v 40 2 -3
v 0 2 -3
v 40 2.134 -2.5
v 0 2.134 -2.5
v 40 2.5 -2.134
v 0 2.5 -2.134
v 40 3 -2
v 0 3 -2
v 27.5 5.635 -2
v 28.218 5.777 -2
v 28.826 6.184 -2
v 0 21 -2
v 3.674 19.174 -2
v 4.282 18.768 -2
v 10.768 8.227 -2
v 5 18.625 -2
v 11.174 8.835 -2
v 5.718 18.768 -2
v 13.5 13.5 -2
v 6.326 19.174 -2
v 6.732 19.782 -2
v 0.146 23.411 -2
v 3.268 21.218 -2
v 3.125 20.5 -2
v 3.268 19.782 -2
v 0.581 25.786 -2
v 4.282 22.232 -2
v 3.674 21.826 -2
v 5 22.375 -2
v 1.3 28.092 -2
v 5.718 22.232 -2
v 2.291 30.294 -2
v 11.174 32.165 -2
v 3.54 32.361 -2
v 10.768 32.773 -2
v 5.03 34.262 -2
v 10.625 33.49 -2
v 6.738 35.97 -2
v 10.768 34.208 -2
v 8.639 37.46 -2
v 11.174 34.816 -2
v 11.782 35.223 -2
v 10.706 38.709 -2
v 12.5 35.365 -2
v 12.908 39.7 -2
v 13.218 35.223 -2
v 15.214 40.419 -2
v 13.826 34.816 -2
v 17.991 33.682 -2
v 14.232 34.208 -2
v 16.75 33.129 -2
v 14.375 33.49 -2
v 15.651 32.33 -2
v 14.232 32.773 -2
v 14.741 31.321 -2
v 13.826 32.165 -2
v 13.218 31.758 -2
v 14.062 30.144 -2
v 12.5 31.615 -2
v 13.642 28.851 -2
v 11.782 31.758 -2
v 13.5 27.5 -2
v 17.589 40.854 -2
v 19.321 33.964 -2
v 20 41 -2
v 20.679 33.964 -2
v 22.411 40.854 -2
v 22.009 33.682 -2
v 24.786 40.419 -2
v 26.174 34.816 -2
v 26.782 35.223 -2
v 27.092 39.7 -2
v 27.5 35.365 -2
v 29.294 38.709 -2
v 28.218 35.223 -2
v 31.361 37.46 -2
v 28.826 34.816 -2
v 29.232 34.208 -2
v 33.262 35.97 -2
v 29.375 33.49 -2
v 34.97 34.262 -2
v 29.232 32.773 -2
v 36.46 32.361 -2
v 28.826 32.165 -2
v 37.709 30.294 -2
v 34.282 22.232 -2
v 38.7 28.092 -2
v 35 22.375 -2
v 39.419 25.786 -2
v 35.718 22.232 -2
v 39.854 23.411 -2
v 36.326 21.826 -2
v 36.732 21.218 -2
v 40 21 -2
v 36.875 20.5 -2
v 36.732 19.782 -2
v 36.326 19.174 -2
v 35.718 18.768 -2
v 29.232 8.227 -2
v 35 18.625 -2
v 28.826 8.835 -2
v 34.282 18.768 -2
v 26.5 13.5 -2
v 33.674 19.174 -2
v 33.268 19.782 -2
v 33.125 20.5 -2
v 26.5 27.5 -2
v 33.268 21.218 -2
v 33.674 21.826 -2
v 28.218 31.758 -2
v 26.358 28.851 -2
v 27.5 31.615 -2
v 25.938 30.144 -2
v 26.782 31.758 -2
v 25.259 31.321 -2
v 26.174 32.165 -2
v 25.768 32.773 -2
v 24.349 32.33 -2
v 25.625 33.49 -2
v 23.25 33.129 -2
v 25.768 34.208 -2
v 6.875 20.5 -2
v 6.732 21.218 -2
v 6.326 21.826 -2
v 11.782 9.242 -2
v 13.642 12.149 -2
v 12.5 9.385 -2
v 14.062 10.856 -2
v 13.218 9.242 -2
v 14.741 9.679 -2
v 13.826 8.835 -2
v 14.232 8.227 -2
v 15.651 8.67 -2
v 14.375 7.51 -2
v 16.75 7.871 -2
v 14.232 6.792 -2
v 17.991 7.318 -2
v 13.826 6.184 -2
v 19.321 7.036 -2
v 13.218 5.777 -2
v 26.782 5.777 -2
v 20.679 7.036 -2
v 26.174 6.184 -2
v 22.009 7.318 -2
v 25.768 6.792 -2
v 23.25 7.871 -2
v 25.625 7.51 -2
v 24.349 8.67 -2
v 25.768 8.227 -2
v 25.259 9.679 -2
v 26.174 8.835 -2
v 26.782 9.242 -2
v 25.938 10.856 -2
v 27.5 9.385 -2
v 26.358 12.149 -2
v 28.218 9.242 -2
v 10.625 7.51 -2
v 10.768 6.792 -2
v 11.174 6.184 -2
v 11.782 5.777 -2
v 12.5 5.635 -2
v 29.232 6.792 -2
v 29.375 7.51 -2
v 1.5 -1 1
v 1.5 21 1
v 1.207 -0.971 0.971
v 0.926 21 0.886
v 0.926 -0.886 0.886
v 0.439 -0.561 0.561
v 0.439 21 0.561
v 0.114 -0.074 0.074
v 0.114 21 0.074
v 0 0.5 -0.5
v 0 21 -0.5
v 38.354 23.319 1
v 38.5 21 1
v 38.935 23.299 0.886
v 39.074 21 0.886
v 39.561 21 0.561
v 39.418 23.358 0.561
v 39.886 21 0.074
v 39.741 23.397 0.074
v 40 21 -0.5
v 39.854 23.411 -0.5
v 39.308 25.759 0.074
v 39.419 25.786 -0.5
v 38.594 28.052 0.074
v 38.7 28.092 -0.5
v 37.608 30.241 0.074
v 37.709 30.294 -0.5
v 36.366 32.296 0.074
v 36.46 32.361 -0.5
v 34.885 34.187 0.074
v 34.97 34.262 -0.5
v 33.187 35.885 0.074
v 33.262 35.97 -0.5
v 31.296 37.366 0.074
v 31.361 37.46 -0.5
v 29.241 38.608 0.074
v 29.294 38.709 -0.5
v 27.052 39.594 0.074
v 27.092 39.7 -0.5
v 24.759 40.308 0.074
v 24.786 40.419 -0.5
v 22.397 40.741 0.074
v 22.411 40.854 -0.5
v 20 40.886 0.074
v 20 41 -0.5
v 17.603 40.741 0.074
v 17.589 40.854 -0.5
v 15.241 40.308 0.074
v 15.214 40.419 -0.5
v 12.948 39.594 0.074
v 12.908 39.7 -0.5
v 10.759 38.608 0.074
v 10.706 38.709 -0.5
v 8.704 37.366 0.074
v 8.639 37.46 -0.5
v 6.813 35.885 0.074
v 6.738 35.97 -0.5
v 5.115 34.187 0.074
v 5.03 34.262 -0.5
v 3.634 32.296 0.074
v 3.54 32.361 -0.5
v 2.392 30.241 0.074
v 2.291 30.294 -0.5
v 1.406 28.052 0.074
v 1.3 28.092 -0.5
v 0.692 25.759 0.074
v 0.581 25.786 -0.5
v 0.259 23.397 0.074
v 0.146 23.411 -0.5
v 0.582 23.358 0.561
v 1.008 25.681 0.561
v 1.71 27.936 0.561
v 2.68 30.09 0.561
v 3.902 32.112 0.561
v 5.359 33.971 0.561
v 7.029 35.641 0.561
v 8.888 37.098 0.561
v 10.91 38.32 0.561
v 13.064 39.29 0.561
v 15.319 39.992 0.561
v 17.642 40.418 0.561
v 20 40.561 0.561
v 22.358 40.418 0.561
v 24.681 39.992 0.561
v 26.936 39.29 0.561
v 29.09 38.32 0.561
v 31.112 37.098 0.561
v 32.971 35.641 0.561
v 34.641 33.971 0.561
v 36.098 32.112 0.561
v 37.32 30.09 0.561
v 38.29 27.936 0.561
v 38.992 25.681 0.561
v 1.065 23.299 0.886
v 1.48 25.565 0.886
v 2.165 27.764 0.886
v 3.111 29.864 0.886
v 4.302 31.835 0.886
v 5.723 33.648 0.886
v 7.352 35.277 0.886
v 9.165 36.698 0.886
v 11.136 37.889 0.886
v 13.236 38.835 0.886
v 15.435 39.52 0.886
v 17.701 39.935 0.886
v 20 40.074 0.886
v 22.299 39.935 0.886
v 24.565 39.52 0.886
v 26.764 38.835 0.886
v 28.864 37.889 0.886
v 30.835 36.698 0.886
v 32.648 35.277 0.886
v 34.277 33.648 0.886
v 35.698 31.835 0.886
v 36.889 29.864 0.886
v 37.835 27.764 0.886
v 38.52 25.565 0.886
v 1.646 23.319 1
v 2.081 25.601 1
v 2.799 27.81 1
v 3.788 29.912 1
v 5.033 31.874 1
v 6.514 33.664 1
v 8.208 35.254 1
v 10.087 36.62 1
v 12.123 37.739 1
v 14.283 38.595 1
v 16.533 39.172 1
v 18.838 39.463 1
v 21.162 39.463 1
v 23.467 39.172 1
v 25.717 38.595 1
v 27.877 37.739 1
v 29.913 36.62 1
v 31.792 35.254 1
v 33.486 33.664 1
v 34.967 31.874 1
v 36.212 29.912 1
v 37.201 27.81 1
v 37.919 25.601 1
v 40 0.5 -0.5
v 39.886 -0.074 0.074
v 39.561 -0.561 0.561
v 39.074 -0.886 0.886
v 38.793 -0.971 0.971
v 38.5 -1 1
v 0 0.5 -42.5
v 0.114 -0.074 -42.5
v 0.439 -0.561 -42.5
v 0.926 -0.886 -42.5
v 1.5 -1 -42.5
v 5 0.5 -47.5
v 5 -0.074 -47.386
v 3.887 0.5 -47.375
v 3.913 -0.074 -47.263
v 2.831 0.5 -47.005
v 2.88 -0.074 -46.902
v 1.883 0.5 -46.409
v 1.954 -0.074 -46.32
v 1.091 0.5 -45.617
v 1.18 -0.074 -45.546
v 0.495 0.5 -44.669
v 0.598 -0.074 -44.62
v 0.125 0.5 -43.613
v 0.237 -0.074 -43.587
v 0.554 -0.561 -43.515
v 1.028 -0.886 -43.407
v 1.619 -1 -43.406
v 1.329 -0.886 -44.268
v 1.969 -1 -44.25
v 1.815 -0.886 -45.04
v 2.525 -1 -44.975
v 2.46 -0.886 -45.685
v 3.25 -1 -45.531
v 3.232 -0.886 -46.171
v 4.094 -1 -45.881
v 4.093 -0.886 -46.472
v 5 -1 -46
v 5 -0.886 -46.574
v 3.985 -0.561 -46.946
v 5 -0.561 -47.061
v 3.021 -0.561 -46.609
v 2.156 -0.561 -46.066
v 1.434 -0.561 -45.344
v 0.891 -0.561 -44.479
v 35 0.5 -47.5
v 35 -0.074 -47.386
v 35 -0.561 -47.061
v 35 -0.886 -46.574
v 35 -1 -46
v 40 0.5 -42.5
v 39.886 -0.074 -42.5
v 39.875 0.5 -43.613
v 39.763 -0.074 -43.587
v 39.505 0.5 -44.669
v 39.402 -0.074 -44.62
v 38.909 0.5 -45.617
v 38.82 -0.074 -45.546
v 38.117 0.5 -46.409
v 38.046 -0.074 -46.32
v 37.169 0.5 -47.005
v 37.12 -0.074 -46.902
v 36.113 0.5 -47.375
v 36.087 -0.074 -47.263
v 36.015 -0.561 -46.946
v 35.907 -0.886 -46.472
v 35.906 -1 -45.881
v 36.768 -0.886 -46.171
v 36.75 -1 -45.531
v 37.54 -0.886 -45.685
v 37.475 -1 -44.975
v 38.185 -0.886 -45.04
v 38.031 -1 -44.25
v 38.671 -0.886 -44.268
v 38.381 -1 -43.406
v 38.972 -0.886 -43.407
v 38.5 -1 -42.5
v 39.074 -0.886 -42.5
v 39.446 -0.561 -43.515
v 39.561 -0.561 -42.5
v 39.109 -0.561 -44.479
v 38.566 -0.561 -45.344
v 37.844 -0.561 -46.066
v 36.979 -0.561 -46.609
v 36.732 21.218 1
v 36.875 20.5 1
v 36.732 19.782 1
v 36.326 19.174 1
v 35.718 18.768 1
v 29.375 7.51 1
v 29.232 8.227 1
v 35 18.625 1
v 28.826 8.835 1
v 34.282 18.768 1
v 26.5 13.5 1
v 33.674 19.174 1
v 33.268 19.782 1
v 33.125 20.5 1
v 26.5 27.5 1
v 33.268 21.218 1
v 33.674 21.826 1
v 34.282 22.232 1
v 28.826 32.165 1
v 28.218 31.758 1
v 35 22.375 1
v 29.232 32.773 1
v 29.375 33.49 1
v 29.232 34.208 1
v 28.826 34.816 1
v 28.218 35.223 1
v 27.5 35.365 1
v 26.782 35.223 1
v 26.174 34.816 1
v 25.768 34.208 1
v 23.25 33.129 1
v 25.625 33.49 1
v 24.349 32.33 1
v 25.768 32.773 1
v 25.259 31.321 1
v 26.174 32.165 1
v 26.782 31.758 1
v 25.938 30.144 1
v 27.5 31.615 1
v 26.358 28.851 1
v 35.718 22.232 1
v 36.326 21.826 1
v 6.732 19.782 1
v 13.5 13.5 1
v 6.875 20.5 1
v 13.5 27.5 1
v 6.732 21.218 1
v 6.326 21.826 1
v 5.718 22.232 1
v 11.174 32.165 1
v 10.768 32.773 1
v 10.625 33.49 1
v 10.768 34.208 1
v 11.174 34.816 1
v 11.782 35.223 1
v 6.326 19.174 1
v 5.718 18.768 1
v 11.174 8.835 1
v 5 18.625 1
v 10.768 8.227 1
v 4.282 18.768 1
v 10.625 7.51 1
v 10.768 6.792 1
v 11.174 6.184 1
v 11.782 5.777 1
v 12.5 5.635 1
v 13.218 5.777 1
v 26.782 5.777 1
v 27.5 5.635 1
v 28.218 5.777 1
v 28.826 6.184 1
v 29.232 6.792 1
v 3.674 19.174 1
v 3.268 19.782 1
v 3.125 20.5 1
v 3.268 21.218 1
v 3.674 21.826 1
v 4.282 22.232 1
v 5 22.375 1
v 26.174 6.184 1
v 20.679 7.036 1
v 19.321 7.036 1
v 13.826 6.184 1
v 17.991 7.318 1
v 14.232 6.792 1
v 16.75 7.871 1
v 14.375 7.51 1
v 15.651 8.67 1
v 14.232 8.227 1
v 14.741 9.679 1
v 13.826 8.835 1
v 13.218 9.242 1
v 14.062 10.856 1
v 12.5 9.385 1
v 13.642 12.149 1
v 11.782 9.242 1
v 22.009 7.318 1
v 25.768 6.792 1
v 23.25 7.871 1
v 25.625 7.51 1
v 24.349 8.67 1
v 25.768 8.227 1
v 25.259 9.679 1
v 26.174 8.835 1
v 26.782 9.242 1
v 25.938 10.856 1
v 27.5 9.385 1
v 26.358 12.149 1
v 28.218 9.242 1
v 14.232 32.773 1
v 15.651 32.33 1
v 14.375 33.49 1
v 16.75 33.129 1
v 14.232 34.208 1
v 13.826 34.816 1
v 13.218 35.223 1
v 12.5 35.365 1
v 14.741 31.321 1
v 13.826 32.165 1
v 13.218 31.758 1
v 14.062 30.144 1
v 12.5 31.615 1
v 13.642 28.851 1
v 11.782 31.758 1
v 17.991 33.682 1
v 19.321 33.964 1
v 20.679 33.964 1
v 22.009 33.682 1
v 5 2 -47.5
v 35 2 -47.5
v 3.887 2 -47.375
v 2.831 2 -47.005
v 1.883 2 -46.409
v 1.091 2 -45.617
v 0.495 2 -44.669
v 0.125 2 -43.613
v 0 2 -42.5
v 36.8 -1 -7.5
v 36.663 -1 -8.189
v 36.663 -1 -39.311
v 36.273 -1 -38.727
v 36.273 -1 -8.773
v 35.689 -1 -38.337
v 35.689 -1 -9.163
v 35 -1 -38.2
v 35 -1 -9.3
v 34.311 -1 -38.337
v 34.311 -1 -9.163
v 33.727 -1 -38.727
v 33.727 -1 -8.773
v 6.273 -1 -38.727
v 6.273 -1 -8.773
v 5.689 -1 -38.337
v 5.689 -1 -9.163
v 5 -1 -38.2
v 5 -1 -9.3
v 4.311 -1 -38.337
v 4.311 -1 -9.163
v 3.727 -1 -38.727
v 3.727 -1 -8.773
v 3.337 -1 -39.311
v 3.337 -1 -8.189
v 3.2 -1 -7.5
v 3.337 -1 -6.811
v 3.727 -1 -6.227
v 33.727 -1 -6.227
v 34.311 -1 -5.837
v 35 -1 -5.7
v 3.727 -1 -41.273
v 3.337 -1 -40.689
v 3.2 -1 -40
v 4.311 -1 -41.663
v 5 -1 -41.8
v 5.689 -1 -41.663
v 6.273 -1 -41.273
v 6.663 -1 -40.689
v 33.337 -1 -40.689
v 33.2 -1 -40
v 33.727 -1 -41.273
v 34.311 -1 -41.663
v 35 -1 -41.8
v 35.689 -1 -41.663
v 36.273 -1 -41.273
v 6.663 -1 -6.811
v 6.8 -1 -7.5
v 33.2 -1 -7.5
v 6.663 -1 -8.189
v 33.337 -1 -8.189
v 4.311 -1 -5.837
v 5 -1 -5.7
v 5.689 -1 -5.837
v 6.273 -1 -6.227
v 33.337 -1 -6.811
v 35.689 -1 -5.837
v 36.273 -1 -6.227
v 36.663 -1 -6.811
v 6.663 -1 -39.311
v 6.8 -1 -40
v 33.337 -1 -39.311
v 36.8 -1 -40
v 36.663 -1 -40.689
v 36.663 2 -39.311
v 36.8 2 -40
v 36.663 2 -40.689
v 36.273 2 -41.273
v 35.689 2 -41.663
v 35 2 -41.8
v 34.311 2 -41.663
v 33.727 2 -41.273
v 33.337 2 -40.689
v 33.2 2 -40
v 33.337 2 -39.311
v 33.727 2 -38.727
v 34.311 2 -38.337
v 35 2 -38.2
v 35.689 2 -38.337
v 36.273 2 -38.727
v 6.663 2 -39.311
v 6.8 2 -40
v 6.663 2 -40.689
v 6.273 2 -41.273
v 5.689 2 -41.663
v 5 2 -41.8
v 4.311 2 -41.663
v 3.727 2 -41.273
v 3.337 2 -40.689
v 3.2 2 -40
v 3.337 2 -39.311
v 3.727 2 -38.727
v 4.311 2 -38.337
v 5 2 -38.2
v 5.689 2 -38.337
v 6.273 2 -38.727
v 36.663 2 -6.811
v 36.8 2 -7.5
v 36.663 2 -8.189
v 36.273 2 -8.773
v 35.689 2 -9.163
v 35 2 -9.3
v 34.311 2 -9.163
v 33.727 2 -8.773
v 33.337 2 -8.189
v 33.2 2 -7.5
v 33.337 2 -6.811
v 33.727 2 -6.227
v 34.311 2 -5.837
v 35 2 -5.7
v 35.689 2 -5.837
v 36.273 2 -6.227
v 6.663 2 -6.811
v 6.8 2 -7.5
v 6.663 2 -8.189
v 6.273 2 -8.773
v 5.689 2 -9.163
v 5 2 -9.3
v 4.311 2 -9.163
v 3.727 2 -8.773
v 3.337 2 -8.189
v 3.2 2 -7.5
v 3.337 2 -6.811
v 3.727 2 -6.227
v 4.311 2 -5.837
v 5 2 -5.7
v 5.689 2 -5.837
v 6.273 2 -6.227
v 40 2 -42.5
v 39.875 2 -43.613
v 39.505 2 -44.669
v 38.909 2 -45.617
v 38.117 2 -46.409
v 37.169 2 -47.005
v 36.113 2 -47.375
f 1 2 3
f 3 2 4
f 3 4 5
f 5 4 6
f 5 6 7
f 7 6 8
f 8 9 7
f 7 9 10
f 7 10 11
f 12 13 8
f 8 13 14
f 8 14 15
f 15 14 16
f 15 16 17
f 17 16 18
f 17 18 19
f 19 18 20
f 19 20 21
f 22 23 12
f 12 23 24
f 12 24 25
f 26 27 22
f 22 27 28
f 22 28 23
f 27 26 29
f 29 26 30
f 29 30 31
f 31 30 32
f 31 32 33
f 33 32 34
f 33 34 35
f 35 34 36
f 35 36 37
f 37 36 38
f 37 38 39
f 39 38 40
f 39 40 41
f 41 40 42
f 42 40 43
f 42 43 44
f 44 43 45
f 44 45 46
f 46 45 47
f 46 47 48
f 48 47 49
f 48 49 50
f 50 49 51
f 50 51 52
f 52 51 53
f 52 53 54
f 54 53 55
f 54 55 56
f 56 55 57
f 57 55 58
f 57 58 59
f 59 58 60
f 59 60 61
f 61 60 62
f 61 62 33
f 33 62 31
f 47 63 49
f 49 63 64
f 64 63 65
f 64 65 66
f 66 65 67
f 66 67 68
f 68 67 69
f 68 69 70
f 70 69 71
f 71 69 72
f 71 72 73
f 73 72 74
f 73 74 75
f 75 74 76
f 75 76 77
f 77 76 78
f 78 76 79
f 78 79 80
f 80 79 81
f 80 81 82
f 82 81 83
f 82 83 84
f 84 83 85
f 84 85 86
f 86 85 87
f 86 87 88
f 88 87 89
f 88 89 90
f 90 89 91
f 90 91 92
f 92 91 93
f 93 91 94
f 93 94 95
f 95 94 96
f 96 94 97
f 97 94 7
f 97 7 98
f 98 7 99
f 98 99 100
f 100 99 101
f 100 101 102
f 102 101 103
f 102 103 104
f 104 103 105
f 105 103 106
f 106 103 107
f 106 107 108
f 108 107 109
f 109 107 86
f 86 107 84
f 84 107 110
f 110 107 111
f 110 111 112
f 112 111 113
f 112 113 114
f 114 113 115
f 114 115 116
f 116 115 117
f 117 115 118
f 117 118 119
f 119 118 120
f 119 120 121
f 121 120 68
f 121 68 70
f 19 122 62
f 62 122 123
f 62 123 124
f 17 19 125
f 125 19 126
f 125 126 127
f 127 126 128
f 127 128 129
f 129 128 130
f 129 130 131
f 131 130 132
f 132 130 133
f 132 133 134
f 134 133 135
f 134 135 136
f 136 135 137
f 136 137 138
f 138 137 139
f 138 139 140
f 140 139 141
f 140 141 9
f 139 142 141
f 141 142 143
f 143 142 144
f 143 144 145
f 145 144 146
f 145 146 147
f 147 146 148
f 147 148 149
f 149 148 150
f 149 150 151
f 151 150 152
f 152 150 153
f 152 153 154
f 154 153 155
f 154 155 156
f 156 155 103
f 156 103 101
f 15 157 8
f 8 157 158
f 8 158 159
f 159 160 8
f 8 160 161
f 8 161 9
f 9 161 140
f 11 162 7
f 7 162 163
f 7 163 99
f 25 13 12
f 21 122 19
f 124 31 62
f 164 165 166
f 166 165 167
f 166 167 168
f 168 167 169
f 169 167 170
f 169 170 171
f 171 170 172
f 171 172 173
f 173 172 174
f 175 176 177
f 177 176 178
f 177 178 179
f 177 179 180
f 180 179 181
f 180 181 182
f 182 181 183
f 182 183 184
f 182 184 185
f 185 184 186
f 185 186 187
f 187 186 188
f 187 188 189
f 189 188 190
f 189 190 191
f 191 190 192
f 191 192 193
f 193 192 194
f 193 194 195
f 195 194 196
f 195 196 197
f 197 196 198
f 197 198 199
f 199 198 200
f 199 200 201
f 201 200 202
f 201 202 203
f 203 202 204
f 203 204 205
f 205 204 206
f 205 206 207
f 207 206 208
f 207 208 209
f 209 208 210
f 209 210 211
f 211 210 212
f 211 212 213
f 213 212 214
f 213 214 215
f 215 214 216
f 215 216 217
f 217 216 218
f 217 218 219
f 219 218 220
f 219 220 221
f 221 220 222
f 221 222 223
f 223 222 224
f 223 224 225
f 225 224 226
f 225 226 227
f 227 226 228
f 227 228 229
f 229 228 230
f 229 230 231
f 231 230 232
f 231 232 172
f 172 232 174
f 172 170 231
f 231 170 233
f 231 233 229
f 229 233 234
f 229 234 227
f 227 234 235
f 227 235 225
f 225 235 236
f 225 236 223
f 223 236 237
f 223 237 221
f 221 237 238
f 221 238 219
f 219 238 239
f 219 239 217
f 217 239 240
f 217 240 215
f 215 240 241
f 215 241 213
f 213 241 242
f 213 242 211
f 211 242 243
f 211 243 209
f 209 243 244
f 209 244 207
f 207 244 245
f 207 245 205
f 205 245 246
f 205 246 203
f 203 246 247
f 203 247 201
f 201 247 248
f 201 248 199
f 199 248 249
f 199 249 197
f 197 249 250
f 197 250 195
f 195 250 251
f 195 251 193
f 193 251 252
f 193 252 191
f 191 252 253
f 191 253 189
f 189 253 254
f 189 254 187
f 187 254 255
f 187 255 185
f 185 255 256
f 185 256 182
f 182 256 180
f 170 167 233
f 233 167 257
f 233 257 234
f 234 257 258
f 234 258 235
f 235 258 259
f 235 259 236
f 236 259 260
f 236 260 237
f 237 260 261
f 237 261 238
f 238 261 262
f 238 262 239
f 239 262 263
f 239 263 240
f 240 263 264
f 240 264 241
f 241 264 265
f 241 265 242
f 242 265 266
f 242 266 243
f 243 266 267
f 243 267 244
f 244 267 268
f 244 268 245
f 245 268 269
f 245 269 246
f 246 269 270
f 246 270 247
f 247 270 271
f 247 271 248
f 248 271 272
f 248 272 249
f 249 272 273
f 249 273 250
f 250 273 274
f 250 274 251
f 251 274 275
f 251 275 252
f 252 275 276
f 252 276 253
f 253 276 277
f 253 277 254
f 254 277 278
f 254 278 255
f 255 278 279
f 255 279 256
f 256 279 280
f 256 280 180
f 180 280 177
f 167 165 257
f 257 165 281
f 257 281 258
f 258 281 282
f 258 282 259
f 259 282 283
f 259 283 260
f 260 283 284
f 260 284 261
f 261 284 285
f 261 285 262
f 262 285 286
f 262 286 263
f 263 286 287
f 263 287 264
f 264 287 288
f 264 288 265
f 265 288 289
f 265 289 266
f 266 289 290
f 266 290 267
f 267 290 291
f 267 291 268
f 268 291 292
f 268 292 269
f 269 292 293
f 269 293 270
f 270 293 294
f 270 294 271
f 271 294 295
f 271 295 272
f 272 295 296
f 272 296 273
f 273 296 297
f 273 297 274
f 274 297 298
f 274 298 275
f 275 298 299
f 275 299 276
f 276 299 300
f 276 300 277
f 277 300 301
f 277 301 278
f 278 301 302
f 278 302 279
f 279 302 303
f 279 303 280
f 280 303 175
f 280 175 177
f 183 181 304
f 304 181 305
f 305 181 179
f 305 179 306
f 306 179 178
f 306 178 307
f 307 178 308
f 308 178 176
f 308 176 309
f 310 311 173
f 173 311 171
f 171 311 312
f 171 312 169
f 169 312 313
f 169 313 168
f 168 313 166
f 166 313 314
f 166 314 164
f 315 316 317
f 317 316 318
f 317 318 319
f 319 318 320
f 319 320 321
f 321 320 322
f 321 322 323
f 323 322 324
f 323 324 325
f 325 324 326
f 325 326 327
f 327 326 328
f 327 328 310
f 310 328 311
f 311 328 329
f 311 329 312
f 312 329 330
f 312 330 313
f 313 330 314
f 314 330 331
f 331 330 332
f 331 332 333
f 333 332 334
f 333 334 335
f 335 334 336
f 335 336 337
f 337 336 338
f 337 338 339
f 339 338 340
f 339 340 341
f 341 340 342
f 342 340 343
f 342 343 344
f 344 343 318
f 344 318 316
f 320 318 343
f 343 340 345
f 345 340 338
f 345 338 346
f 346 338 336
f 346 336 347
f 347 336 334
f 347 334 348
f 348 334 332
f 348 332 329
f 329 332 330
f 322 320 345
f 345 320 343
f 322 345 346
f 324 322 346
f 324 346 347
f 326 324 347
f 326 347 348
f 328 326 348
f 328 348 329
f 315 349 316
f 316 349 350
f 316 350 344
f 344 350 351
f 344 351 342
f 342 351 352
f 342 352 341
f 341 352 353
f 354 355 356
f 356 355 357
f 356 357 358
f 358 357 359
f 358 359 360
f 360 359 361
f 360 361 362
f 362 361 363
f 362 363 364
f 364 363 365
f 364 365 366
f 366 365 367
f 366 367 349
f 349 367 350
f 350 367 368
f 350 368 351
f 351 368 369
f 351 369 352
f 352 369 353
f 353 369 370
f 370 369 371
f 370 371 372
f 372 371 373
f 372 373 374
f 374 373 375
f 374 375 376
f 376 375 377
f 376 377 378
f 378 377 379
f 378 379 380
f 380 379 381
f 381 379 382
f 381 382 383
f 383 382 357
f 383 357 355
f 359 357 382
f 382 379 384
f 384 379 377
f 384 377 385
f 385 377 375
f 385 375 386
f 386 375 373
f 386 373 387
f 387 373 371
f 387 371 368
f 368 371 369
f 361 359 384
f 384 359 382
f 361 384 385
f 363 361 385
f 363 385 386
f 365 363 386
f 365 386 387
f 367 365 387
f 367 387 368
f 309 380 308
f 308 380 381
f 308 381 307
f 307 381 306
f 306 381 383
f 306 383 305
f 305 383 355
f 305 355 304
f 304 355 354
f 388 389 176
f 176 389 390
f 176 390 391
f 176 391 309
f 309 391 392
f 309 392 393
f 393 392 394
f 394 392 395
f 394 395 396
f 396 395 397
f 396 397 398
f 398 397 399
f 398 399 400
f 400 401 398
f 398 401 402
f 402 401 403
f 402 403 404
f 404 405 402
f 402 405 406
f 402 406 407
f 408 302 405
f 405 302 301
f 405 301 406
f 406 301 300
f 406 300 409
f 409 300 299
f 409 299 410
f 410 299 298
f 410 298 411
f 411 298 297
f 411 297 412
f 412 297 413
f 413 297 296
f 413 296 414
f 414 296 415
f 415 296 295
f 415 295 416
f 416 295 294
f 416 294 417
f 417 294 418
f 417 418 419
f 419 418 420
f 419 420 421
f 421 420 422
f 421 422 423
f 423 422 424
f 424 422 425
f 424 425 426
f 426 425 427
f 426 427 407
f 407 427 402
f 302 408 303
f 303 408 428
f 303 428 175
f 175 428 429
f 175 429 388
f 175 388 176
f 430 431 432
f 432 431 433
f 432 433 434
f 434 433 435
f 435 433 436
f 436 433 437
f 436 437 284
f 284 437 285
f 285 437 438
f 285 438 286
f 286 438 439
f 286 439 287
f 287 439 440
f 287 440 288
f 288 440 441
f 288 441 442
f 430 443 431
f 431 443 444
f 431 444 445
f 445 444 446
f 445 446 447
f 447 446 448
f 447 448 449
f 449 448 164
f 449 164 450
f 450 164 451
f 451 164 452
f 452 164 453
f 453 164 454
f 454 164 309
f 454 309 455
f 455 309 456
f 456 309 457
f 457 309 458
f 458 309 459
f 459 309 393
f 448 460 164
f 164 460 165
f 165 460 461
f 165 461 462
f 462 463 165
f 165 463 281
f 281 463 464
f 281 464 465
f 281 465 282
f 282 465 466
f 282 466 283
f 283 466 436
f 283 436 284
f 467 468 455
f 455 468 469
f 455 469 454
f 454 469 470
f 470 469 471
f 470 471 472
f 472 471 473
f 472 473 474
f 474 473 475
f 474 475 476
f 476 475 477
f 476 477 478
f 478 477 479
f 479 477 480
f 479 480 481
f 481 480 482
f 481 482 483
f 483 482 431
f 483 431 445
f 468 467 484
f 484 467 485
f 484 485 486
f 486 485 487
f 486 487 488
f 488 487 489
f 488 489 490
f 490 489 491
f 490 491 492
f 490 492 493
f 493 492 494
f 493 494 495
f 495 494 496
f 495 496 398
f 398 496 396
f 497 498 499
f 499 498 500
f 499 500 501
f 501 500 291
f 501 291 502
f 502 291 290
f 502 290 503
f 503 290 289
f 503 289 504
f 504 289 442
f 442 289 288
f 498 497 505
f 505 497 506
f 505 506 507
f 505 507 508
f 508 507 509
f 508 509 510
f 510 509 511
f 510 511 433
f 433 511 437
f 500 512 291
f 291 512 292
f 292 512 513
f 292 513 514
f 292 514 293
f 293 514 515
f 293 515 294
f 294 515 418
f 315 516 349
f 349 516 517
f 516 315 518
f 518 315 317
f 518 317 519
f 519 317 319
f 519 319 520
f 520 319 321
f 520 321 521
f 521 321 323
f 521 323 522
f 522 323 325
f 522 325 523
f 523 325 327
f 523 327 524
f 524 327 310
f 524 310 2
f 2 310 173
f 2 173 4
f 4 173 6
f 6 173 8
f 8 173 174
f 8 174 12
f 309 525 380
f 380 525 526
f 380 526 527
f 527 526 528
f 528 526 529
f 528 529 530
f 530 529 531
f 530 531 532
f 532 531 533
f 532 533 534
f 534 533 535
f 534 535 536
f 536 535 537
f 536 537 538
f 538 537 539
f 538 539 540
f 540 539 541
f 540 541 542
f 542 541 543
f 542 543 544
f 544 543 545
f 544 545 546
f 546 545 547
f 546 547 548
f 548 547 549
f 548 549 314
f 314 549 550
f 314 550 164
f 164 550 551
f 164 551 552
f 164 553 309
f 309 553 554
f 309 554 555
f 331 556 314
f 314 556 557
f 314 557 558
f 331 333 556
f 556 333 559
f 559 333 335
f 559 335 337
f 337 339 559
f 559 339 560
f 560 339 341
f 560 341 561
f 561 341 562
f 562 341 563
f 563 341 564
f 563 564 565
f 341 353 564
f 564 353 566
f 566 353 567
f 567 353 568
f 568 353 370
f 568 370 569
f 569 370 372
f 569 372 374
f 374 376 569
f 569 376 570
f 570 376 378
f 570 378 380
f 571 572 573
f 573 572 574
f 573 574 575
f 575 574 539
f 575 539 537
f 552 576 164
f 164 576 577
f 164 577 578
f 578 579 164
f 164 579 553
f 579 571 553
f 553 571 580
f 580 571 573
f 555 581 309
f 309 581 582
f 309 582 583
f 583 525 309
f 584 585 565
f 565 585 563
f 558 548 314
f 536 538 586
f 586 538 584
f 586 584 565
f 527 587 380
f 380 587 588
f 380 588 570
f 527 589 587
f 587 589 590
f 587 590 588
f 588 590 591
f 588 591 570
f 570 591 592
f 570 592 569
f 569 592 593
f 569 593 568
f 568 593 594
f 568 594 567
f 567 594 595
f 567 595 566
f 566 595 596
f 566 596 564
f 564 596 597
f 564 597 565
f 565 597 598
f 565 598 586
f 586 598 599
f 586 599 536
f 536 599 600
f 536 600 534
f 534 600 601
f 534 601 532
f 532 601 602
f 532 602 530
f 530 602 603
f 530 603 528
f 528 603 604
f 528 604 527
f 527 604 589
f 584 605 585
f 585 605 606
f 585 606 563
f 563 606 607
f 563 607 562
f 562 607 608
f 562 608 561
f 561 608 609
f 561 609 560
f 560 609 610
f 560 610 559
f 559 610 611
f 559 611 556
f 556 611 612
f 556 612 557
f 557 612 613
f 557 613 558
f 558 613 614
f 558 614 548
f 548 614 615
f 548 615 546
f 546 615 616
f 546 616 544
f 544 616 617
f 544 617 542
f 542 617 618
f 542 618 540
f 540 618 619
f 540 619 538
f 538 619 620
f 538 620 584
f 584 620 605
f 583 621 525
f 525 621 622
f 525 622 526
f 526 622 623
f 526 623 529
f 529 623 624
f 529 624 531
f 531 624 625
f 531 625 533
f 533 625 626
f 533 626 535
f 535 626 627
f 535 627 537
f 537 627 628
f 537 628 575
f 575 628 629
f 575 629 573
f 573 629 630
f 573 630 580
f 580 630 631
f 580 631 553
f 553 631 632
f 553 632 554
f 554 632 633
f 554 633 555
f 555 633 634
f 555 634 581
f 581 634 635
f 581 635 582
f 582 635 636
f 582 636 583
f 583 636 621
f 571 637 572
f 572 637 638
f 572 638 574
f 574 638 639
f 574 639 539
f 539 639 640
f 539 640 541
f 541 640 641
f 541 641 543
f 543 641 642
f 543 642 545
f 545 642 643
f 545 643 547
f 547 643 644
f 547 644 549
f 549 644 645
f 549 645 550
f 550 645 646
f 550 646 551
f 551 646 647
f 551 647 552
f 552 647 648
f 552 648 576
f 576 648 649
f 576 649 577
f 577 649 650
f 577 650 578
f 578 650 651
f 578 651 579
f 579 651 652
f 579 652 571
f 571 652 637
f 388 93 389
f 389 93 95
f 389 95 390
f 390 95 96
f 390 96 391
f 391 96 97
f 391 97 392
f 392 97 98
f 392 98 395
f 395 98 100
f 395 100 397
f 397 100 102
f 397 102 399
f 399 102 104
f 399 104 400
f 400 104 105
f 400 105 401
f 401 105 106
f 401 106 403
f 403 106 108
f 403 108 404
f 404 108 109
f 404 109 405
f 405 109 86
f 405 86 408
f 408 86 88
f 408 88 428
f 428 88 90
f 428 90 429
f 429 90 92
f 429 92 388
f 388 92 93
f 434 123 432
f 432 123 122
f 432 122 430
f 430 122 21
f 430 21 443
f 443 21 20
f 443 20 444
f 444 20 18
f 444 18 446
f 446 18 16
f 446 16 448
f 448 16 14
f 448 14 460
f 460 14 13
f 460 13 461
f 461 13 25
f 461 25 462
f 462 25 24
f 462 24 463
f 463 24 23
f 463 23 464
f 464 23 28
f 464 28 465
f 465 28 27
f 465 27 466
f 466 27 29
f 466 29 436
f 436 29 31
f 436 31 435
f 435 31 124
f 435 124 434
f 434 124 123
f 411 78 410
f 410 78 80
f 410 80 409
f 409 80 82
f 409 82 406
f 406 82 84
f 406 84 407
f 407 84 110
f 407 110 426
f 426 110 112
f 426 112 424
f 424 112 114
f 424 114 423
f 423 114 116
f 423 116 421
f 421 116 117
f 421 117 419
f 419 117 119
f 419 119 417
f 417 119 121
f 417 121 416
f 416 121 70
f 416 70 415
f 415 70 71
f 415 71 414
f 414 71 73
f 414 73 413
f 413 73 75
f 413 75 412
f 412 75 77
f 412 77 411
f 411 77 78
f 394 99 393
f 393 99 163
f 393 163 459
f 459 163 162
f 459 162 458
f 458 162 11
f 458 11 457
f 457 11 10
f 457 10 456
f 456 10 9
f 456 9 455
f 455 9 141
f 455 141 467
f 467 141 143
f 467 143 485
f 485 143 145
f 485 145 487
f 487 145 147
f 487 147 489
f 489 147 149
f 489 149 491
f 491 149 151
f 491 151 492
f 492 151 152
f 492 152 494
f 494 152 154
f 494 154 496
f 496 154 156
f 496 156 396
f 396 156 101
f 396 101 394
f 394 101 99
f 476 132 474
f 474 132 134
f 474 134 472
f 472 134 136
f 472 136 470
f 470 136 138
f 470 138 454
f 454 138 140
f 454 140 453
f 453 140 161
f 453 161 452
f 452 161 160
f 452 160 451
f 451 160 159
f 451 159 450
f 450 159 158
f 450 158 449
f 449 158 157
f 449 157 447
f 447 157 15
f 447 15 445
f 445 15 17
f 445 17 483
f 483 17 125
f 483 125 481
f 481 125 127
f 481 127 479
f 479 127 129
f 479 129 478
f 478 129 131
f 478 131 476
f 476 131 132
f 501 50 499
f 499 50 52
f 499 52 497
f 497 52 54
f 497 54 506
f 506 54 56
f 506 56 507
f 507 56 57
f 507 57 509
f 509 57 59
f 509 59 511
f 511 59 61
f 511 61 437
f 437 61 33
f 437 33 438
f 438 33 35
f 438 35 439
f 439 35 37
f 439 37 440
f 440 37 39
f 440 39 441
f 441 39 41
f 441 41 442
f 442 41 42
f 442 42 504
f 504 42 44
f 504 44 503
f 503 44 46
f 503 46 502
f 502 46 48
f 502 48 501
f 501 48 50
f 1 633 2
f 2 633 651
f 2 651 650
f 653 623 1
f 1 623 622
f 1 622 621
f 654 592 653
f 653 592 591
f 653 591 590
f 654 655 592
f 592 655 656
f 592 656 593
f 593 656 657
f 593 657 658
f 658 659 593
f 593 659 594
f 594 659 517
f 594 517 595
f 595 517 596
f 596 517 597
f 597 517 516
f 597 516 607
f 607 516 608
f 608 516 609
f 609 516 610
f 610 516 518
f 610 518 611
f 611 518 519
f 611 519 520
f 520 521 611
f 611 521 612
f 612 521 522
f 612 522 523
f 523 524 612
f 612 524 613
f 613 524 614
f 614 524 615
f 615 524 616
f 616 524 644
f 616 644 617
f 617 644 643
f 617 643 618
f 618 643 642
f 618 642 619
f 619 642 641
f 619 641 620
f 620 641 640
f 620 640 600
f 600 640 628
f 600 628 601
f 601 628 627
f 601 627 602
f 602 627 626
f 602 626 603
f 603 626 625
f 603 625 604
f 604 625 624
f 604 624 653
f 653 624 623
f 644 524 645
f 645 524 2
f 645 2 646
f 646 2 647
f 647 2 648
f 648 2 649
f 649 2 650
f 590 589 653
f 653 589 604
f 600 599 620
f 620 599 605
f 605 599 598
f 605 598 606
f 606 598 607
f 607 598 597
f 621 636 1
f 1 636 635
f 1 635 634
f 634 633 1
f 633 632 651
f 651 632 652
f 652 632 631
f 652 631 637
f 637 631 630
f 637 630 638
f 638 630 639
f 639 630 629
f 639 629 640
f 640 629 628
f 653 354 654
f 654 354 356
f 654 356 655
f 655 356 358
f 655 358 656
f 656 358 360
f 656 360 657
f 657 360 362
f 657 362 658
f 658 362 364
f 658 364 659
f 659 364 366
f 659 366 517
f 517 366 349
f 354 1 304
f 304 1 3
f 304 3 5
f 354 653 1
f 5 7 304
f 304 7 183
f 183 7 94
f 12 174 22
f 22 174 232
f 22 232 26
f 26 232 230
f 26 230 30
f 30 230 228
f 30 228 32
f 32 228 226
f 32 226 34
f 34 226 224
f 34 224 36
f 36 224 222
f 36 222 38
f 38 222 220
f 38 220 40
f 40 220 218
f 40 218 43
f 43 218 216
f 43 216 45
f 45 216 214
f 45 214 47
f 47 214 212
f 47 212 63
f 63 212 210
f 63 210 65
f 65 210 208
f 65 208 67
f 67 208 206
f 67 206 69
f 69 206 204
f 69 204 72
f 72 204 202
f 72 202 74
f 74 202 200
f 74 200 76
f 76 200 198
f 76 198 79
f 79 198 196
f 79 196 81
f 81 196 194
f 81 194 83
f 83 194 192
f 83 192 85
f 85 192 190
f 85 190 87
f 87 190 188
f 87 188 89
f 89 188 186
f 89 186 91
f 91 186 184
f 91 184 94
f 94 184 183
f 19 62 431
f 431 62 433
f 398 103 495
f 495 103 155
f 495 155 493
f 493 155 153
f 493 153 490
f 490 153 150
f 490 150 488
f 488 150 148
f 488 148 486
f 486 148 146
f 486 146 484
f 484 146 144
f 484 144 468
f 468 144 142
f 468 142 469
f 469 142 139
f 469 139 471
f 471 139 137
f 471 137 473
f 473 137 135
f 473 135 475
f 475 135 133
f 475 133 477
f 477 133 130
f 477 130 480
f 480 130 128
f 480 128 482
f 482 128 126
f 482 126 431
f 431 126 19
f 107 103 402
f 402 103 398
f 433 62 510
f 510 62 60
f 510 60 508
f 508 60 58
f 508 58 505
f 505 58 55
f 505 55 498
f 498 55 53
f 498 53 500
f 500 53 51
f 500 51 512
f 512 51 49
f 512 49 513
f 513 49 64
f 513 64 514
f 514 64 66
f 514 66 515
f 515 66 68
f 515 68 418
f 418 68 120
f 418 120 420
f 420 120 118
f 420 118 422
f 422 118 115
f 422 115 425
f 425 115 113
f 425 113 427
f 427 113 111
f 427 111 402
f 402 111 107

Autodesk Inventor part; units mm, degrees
ref_plane "YZ Plane" through (0, 0, 0) normal (1, 0, 0) x (0, 1, 0)
ref_plane "XZ Plane" through (0, 0, 0) normal (0, 1, 0) x (-1, 0, 0)
ref_plane "XY Plane" through (0, 0, 0) normal (0, 0, 1) x (1, 0, 0)
sketch "Sketch1" plane through (0, 0, 0) normal (1, 0, 0) x (0, 1, 0)
  line L0 (0, 0) -> (2, 0)
  line L1 (2, 0) -> (2, -47.5)
  line L2 (2, -47.5) -> (0, -47.5)
  line L3 (0, -47.5) -> (0, 0)
  line L4 (0, 0) -> (41, 0)
  line L5 (41, 0) -> (41, -2)
  line L6 (41, -2) -> (0, -2)
  line L7 (0, -2) -> (0, 0)
  point P0 (2, -2)
  dimension "d0" = 2
  dimension "d1" = 47.5
  dimension "d2" = 41
  dimension "d3" = 2
extrude "Extrusion1" add sketch "Sketch1" along normal blind 40
sketch "Sketch2" plane through (0, 0, 0) normal (0, 0, 1) x (1, 0, 0)
  line L0 (20, 27.5) -> (20, 13.5) construction
  line L1 (13.5, 27.5) -> (13.5, 13.5)
  line L2 (26.5, 13.5) -> (26.5, 27.5)
  arc A0 (26.5, 27.5) -> (13.5, 27.5) centre (20, 27.5) ccw
  arc A1 (13.5, 13.5) -> (26.5, 13.5) centre (20, 13.5) ccw
  circle A2 centre (35, 20.5) radius 1.5
  circle A3 centre (27.5, 33.4904) radius 1.5
  circle A4 centre (12.5, 33.4904) radius 1.5
  circle A5 centre (5, 20.5) radius 1.5
  circle A6 centre (12.5, 7.5096) radius 1.5
  circle A7 centre (27.5, 7.5096) radius 1.5
  point P0 (0, 0)
  point P1 (20, 20.5)
  point P2 (20, 20.5)
  dimension "d6" = 14
  dimension "d7" = 13
  dimension "d8" = 3
  dimension "d11" = 360
extrude "Extrusion2" cut sketch "Sketch2" against normal blind 40
fillet "Fillet1" radius 20 2 edges at (40, 41, -1) (0, 41, -1)
sketch "Sketch3" plane through (0, 0, -47.5) normal (0, -1, 0) x (1, 0, 0)
  circle A0 centre (5, 40) radius 1.75
  line L0 (5, 40) -> (5, 7.5) construction
  line L1 (5, 40) -> (37.5, 40) construction
  line L2 (5, 7.5) -> (35, 7.5) construction
  circle A1 centre (5, 7.5) radius 1.75
  circle A2 centre (35, 40) radius 1.75
  circle A3 centre (35, 7.5) radius 1.75
  point P0 (0, 47.5)
  dimension "d16" = 3.5
  dimension "d17" = 32.5
  dimension "d18" = 90
  dimension "d19" = 30
  dimension "d20" = 90
  dimension "d23" = 32.5
  dimension "d26" = 30
extrude "Extrusion3" cut sketch "Sketch3" against normal blind 40
fillet "Fillet2" radius 5 2 edges at (40, 1, -47.5) (0, 1, -47.5)
sketch "Sketch4" plane through (0, 0, 0) normal (0, 0, 1) x (1, 0, 0)
  arc A0 (40, 21) -> (0, 21) centre (20, 21) ccw projected
  line L0 (0, 21) -> (0, 0) projected
  line L1 (0, 0) -> (40, 0) projected
  line L2 (40, 21) -> (40, 0) projected
  circle A1 centre (12.5, 33.4904) radius 1.5 projected
  circle A2 centre (35, 20.5) radius 1.5 projected
  circle A3 centre (27.5, 33.4904) radius 1.5 projected
  circle A4 centre (5, 20.5) radius 1.5 projected
  circle A5 centre (27.5, 7.5096) radius 1.5 projected
  line L3 (26.5, 27.5) -> (26.5, 13.5) projected
  arc A6 (13.5, 13.5) -> (26.5, 13.5) centre (20, 13.5) ccw projected
  line L4 (13.5, 13.5) -> (13.5, 27.5) projected
  arc A7 (26.5, 27.5) -> (13.5, 27.5) centre (20, 27.5) ccw projected
  circle A8 centre (12.5, 7.5096) radius 1.5 projected
  line L5 (35, 20.5) -> (5, 20.5) construction
  circle A9 centre (27.5, 33.4904) radius 1.875
  circle A10 centre (12.5, 33.4904) radius 1.875
  circle A11 centre (5, 20.5) radius 1.875
  circle A12 centre (12.5, 7.5096) radius 1.875
  circle A13 centre (27.5, 7.5096) radius 1.875
  circle A14 centre (35, 20.5) radius 1.875
  point P0 (20, 20.5)
  dimension "d58" = 3.75
  dimension "d61" = 360
extrude "Extrusion4" cut sketch "Sketch4" against normal blind 10 contours A9 | A10 | A11 | A12 | A13 | A14
sketch "Sketch5" plane through (0, 2, -2) normal (0, 1, 0) x (1, 0, 0)
  circle A0 centre (5, 38) radius 1.75 projected
  circle A1 centre (5, 5.5) radius 1.75 projected
  circle A2 centre (35, 38) radius 1.75 projected
  circle A3 centre (35, 5.5) radius 1.75 projected
  arc A4 (5, 45.5) -> (0, 40.5) centre (5, 40.5) ccw projected
  line L0 (0, 40.5) -> (0, 0) projected
  line L1 (0, 0) -> (40, 0) projected
  line L2 (40, 40.5) -> (40, 0) projected
  arc A5 (40, 40.5) -> (35, 45.5) centre (35, 40.5) ccw projected
  line L3 (5, 45.5) -> (35, 45.5) projected
  circle A6 centre (5, 38) radius 1.8
  circle A7 centre (5, 5.5) radius 1.8
  circle A8 centre (35, 38) radius 1.8
  circle A9 centre (35, 5.5) radius 1.8
  point P0 (0, -2)
  dimension "d47" = 0.05
  dimension "d50" = 32.5
  dimension "d53" = 30
extrude "Extrusion5" cut sketch "Sketch5" against normal blind 10 contours A6 | A7 | A8 | A9
sketch "Sketch8" plane through (0, 0, 0) normal (0, 0, 1) x (1, 0, 0)
  circle A0 centre (35, 20.5) radius 1.875 projected
  circle A1 centre (5, 20.5) radius 1.875 projected
  circle A2 centre (27.5, 33.4904) radius 1.875 projected
  circle A3 centre (27.5, 7.5096) radius 1.875 projected
  circle A4 centre (12.5, 7.5096) radius 1.875 projected
  circle A5 centre (12.5, 33.4904) radius 1.875 projected
  arc A6 (40, 21) -> (0, 21) centre (20, 21) ccw projected
  line L0 (0, 21) -> (0, 0) projected
  line L1 (0, 0) -> (40, 0) projected
  line L2 (40, 21) -> (40, 0) projected
  line L3 (26.5, 27.5) -> (26.5, 13.5) projected
  arc A7 (13.5, 13.5) -> (26.5, 13.5) centre (20, 13.5) ccw projected
  line L4 (13.5, 13.5) -> (13.5, 27.5) projected
  arc A8 (26.5, 27.5) -> (13.5, 27.5) centre (20, 27.5) ccw projected
extrude "Extrusion8" add sketch "Sketch8" along normal blind 1
sketch "Sketch9" plane through (5, 0, -47.5) normal (0, -1, 0) x (1, 0, 0)
  circle A0 centre (30, 7.5) radius 1.8 projected
  circle A1 centre (0, 7.5) radius 1.8 projected
  circle A2 centre (30, 40) radius 1.8 projected
  circle A3 centre (0, 40) radius 1.8 projected
  arc A4 (-5, 5) -> (0, 0) centre (0, 5) ccw projected
  line L0 (0, 0) -> (30, 0) projected
  arc A5 (30, 0) -> (35, 5) centre (30, 5) ccw projected
  line L1 (35, 5) -> (35, 48.5) projected
  line L2 (-5, 48.5) -> (35, 48.5) projected
  line L3 (-5, 5) -> (-5, 48.5) projected
  point P0 (-5, 47.5)
extrude "Extrusion9" add sketch "Sketch9" along normal blind 1
fillet "Fillet4" radius 1.5 8 edges at (0, 10, 1) (40, 10, 1) (20, 41, 1) (38.5355, -1, -46.0355) (20, -1, -47.5) (1.4645, -1, -46.0355) (0, -1, -20.75) (40, -1, -20.75)
fillet "Fillet5" radius 1 1 edges at (20, 2, -2)
properties part number "520 DC Gear Motor Bracket"
